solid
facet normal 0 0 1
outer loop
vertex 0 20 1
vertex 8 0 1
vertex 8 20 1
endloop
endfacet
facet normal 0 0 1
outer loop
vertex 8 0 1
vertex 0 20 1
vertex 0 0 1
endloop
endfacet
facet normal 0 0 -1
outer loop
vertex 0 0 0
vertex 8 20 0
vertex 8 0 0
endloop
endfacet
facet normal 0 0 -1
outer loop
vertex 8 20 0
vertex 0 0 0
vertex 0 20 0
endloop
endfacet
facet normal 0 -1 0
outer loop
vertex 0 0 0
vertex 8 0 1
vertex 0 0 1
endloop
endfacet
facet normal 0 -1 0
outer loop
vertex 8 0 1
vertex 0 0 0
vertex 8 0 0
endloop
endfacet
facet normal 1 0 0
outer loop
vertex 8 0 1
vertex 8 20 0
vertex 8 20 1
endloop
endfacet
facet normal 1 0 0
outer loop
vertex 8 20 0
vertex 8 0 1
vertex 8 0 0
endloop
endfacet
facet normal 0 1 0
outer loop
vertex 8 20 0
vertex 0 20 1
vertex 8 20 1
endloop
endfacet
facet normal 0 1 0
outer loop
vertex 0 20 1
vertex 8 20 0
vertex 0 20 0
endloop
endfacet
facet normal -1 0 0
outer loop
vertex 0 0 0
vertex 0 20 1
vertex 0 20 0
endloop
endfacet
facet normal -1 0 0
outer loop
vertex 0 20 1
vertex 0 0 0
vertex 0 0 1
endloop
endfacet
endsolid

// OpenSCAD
/* Warning, this is a very basic generator with a lot of approximation 
input data : [TSOP, NPX, 8X20mm, 28, , C, C04-00067C]
generated by com.zoubworld.electronics.cad.model3d.Basic
Date : Sun Feb 15 10:50:48 CET 2026
*/

//body
color("black")
translate([0,0,0])
cube([8.0,20.0,1.0], center=false);
